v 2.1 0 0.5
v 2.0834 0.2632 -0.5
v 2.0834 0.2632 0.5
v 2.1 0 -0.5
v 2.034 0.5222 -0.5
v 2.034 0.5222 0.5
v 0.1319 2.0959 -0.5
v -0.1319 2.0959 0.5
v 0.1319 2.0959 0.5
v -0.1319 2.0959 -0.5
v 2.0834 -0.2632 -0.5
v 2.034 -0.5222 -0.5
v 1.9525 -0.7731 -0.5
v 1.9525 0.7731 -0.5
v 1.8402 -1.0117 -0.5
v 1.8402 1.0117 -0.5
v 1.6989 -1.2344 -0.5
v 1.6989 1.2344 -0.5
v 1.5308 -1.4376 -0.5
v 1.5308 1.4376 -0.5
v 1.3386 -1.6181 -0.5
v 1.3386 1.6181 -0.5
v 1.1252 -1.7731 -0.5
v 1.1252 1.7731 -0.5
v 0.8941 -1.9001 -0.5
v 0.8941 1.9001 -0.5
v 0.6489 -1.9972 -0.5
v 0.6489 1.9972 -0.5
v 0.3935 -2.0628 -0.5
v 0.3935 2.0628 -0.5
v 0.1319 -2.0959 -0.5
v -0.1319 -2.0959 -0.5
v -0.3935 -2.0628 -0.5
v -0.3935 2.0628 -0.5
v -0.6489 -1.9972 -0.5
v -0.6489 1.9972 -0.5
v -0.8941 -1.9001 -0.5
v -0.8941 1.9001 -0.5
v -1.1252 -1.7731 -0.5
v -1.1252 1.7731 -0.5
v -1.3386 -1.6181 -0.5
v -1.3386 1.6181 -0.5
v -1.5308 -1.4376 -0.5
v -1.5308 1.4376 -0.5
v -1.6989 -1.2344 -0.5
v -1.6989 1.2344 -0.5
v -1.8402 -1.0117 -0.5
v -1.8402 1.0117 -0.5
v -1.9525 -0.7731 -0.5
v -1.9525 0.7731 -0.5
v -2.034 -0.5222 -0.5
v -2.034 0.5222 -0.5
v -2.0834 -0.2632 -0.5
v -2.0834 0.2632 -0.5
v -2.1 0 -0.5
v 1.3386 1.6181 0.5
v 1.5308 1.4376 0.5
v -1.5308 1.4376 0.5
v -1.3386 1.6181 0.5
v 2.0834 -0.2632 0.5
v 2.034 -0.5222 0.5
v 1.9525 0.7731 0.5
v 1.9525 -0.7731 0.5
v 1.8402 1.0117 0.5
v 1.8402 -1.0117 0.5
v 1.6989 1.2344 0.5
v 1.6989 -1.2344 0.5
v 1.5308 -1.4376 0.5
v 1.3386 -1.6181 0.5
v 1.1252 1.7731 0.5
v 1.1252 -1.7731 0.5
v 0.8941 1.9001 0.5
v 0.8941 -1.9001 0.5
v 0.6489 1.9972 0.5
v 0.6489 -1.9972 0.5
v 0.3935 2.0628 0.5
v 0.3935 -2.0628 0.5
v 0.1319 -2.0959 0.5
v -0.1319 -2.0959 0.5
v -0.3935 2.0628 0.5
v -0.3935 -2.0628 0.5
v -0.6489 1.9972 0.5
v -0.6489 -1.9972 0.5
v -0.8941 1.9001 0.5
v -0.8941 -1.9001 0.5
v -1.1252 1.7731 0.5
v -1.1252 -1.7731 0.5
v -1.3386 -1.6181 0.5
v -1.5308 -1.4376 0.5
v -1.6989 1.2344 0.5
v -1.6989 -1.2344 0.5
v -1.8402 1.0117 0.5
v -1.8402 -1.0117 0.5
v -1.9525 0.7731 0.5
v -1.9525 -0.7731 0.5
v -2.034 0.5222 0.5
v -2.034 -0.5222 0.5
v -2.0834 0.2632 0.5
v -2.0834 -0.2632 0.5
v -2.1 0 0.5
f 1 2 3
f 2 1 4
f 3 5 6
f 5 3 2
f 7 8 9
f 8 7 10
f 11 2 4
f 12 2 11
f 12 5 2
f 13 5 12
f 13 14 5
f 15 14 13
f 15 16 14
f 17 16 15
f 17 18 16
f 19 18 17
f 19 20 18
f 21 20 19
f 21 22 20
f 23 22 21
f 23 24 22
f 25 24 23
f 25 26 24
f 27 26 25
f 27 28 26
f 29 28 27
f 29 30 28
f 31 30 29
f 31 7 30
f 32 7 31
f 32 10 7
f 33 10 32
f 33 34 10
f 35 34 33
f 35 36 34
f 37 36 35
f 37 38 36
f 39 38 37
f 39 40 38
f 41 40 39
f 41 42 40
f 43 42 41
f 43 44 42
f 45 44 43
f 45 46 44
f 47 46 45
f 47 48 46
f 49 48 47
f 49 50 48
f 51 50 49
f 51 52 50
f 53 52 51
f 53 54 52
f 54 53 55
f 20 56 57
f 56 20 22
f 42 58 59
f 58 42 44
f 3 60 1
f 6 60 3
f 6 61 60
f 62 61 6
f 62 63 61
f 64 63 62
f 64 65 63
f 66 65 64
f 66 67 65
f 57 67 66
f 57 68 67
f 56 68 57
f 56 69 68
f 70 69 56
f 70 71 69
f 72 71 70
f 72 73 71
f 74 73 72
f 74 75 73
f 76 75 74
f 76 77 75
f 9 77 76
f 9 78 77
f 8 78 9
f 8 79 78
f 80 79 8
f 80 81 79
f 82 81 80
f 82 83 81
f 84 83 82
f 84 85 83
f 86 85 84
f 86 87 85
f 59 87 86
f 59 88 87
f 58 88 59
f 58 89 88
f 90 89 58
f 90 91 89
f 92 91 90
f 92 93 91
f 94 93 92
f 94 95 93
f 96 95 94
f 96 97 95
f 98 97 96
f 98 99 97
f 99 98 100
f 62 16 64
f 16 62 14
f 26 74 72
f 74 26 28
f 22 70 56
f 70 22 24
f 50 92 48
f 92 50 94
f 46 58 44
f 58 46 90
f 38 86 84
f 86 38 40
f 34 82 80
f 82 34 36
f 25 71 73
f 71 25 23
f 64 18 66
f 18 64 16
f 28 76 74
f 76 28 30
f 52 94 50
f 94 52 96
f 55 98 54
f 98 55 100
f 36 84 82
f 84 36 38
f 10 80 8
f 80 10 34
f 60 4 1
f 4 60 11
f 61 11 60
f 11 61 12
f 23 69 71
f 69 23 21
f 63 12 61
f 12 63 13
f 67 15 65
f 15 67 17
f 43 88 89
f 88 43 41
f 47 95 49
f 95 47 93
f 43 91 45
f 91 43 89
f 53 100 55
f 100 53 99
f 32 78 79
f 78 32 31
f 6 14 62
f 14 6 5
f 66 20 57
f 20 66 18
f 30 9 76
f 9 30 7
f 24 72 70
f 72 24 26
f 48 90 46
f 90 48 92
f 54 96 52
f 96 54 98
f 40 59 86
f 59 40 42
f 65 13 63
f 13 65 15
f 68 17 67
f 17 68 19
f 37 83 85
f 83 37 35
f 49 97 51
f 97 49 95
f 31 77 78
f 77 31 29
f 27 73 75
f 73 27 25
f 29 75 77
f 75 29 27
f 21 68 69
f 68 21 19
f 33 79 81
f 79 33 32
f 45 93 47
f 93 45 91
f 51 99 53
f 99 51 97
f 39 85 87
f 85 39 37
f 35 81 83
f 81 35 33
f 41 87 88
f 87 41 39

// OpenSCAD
$fn = 50;


difference() {
	union() {
		translate(v = [0, 0, -0.5000000000]) {
			cylinder(h = 1, r = 2.1000000000);
		}
	}
	union() {
		translate(v = [0, 0, -100.0000000000]) {
			cylinder(h = 200, r = 0);
		}
	}
}
